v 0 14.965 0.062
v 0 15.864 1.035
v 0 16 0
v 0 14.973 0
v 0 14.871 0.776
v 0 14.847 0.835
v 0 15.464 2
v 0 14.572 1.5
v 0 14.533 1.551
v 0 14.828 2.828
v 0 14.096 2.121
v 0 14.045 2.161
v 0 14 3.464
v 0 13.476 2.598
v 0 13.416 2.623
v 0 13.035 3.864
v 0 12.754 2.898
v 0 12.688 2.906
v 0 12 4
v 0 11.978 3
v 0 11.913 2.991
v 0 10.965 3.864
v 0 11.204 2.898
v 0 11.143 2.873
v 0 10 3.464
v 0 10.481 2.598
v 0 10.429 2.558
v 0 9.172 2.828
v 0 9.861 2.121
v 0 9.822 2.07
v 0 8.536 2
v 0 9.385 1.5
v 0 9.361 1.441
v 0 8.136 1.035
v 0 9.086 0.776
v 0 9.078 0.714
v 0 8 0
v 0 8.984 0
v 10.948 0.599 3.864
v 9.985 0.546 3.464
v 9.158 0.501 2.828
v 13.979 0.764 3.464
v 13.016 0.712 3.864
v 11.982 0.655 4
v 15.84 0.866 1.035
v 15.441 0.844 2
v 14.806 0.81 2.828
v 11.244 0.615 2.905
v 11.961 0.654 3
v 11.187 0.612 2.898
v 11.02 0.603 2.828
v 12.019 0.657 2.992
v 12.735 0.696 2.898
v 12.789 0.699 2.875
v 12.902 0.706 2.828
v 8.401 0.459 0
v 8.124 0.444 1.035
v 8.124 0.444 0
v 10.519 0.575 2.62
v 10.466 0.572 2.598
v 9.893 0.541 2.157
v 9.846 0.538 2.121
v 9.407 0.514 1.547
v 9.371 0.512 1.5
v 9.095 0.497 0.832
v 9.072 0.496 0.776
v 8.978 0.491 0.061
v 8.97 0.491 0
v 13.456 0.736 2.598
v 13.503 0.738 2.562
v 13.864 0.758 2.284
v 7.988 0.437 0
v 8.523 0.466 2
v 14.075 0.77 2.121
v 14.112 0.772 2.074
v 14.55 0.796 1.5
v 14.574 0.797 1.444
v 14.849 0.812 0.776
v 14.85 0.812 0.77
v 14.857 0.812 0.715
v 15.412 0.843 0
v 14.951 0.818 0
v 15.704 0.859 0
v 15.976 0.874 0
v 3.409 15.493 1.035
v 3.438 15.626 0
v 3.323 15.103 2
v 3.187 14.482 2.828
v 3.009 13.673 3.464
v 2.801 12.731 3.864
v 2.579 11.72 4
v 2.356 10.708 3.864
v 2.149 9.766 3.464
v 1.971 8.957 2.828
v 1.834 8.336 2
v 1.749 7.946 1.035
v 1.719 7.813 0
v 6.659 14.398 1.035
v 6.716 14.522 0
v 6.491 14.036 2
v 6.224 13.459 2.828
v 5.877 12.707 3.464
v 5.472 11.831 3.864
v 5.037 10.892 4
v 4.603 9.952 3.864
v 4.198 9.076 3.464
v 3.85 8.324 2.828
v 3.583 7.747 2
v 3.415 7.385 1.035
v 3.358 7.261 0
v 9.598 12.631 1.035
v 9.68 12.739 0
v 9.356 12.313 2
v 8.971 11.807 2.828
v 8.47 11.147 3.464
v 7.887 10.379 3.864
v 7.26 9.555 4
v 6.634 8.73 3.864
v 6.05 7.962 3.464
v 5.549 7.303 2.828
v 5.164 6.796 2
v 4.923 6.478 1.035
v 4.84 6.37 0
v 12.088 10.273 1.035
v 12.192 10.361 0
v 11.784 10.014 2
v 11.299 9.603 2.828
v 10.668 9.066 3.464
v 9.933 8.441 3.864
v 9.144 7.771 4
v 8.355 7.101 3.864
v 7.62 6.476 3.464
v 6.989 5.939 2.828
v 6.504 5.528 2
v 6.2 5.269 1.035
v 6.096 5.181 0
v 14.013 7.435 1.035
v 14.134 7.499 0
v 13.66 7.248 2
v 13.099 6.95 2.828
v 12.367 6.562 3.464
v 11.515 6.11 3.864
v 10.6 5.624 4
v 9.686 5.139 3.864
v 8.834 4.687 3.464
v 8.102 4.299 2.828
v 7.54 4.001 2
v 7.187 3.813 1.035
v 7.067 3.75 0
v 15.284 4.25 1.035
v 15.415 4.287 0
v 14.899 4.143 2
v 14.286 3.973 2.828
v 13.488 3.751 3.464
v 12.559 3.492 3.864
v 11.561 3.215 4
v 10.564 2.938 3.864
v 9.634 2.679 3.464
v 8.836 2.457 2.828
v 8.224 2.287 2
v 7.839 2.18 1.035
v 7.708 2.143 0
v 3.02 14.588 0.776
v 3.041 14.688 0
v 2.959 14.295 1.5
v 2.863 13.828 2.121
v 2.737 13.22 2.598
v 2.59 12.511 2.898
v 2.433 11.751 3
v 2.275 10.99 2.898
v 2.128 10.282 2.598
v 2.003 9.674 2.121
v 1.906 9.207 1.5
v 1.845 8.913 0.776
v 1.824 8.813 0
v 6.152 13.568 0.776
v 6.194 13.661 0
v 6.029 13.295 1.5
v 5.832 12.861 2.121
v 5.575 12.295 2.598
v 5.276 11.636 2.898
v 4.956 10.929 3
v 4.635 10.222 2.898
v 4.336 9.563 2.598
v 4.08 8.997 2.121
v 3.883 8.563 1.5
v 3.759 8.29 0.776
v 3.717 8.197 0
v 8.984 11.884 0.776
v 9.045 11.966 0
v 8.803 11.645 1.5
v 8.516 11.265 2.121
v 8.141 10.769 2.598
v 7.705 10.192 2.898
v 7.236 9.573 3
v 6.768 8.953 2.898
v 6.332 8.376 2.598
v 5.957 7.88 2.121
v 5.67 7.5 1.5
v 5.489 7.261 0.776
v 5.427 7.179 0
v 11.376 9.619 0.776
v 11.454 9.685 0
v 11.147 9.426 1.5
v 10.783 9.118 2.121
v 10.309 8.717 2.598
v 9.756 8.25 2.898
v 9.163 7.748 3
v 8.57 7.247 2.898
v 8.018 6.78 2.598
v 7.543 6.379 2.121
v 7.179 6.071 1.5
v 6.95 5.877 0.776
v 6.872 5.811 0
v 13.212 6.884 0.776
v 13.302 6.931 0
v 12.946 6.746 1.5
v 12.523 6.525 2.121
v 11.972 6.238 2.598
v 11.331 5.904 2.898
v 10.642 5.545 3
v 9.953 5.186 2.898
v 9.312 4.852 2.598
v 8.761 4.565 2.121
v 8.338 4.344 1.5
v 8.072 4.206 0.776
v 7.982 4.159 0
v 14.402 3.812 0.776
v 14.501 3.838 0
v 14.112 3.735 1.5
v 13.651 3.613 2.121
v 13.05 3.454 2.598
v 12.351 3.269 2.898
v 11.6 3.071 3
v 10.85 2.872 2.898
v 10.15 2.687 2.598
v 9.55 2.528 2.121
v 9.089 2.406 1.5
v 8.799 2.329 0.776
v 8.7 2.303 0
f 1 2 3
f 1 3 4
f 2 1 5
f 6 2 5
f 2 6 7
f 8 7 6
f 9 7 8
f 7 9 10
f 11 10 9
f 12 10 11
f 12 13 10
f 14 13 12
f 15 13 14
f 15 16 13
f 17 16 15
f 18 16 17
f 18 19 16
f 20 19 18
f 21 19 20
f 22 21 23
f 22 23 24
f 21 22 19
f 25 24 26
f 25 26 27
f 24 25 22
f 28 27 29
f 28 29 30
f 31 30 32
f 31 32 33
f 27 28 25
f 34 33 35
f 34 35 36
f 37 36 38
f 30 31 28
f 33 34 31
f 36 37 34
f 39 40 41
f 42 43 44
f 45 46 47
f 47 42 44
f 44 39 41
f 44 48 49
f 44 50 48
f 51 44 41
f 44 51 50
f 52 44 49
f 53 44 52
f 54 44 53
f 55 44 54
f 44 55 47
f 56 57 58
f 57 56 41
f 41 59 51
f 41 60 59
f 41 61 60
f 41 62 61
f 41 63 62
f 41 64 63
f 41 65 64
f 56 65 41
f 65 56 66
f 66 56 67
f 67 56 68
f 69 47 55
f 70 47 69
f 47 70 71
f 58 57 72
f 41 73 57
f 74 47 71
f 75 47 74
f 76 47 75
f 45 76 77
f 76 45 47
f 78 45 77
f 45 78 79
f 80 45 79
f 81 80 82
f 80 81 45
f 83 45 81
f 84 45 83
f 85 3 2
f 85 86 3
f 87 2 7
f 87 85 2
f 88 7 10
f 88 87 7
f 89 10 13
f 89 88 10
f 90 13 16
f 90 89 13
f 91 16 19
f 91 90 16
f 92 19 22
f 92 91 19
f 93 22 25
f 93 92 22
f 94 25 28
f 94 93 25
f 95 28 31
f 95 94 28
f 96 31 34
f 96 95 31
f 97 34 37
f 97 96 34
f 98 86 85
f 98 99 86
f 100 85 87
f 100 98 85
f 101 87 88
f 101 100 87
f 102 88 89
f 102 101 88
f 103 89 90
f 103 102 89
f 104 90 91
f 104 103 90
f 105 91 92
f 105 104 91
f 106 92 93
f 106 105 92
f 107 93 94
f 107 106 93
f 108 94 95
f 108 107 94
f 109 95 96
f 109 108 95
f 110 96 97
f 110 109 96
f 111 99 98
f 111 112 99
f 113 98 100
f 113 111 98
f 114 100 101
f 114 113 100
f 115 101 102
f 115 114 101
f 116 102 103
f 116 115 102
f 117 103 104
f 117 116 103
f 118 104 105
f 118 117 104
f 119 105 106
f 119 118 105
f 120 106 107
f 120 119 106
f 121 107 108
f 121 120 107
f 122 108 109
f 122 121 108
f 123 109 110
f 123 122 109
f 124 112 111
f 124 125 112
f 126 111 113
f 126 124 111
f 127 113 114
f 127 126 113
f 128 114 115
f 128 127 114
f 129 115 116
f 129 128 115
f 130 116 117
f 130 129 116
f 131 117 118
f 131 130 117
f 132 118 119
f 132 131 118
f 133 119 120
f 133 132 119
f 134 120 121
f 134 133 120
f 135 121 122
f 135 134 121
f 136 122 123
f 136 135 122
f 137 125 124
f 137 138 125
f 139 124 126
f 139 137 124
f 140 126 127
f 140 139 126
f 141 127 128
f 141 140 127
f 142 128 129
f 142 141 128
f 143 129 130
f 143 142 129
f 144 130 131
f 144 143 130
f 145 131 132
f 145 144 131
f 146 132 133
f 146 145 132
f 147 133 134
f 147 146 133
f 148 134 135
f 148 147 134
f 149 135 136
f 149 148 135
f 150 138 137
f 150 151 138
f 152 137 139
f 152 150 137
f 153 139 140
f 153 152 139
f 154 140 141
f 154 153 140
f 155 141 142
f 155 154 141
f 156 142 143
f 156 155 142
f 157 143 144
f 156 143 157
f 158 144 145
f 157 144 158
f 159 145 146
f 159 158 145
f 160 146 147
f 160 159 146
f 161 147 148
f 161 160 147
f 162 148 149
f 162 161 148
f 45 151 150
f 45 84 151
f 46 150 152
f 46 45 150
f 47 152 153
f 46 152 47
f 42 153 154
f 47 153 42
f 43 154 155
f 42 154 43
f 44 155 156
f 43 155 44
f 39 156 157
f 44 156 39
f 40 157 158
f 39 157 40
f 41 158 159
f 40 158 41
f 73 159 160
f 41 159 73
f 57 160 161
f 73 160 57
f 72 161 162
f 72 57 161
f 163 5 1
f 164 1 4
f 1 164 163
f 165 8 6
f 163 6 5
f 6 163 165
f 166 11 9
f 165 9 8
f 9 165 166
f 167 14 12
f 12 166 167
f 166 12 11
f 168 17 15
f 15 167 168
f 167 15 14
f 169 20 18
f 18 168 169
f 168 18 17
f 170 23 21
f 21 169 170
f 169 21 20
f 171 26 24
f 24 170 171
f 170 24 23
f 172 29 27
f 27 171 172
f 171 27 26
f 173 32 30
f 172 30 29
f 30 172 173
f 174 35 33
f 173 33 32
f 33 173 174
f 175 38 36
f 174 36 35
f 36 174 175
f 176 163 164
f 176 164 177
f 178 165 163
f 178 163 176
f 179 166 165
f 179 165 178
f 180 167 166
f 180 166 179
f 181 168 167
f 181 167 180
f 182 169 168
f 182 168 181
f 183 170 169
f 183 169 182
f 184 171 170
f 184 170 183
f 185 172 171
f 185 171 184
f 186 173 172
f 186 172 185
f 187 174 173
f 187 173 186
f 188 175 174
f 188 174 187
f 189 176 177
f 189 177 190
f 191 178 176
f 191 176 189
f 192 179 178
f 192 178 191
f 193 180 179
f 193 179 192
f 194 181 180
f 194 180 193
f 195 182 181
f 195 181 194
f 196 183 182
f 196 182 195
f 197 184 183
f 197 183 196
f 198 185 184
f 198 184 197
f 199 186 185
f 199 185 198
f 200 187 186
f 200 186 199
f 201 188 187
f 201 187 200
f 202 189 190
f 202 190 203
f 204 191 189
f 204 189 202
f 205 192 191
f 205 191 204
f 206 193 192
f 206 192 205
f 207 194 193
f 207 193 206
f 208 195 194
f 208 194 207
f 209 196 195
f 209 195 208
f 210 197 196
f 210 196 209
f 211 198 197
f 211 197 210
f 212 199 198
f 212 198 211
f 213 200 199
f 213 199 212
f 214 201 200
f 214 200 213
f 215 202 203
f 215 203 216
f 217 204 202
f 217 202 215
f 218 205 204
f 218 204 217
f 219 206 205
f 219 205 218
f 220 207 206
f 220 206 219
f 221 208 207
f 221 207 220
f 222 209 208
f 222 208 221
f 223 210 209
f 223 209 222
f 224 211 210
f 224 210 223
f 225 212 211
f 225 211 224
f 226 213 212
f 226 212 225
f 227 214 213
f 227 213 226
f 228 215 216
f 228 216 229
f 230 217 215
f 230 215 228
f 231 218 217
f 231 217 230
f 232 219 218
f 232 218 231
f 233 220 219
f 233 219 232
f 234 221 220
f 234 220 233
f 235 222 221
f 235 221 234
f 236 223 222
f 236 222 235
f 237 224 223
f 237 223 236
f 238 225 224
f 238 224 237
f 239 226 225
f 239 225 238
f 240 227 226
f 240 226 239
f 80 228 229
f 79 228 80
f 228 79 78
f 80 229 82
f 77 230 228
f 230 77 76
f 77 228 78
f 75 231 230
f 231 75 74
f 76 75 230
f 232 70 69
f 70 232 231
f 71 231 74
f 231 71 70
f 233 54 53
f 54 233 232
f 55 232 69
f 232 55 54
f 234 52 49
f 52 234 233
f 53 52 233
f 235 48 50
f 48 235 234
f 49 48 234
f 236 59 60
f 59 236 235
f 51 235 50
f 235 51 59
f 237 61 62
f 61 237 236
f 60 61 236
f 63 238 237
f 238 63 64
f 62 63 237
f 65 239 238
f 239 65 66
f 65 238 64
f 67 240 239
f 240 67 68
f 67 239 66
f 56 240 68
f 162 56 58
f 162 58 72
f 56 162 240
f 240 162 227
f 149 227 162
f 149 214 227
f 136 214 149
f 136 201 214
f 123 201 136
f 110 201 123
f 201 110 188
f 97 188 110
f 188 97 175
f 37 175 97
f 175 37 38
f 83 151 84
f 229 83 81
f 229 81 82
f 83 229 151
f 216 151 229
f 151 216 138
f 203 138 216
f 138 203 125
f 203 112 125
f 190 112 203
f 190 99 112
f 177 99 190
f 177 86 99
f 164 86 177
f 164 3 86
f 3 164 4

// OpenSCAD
// file: ../build_environments.scad
// build_environments.scad: modules to build level sections
//

module pool(diameter=10.0, wall_height=2.0, step_width=3.0, connections=[])
{
    difference() {
        union() {
        difference() {
            cylinder(h=0.5,r1=diameter+step_width,r2=diameter+step_width,$fn=48);
            translate([0,0,-0.1])
                cylinder(h=0.7,r1=diameter,r2=diameter,$fn=48);
        }
        difference() {
            cylinder(h=wall_height,r1=diameter+step_width+1.0,r2=diameter+step_width+1.0,$fn=48);
            translate([0,0,-0.1])
                cylinder(h=wall_height+0.2,r1=diameter+step_width,r2=diameter+step_width,$fn=48);
        }
        }
    
        for (c = connections)
        {
            rotate([0,90,0]) {
                angle = atan2(c[1],c[0]);
                rotate([-angle,0,0]) {
                    cylinder(h=diameter+5.0,r1=c[2],r2=c[2],$fn=48);
                }
            }
        }
    }
}

module straight(length=10.0, width=2.0, dy1=0.0, dy2=0.0, dz=0.0)
{
    dims = [0, 0, 0, 0, 0, (dz/length)];
    matrix = [
        [ 1, dims[0], dims[1], 0 ],
        [ dims[2], 1, dims[4], 0 ],
        [ dims[5], dims[3], 1, 0 ],
        [ 0, 0, 0, 1 ]
    ];
    multmatrix(matrix)
    difference() {
        translate([dy1,0,0])
        union() {
            rotate([0,90,0]) {
                difference() {
                    cylinder(h=(length-dy1-dy2),r1=width+1.0,r2=width+1.0,$fn=24);
                    translate([0,0,-0.1])
                        cylinder(h=(length-dy1-dy2+0.2),r1=width,r2=width,$fn=24);
                }
                difference() {
                    cylinder(h=1.0,r1=width+2.0,r2=width+2.0,$fn=24);
                    translate([0,0,-0.1])
                        cylinder(h=1.2,r1=width,r2=width,$fn=24);
                }
                translate([0,0,(length-dy1-dy2)-1.0]) {
                    difference() {
                        cylinder(h=1.0,r1=width+2.0,r2=width+2.0,$fn=24);
                        translate([0,0,-0.1])
                            cylinder(h=1.2,r1=width,r2=width,$fn=24);
                    }
                }
            }
        }
        translate([0,0,-(2*width+4.0)/2])
            cube([3*length,3*length,2*width+4.0],center=true);
    }
}

module curve(p0=[0,0], center=[0,0], dir=1, angle=0.0, width=2.0)
{
    radius = sqrt((p0[0]-center[0])*(p0[0]-center[0]) + (p0[1]-center[1])*(p0[1]-center[1]));
    if (dir == 0) {
        difference() {
            rotate([0,0,-90])
            difference() {
                rotate_extrude(angle = angle, convexity = 10, $fn=32)
                    translate([radius, 0, 0])
                        circle(r = width+1.0,$fn=24);
                rotate([0,0,-1.0])
                    rotate_extrude(angle = angle+2.0, convexity = 10, $fn=32)
                        translate([radius, 0, 0])
                            circle(r = width,$fn=24);
            }
            translate([0,0,-(2*width+4.0)/2])
                cube([5*radius,5*radius,2*width+4.0],center=true);
        }
    }
    else {
        difference() {
            rotate([0,0,90])
            difference() {
                rotate_extrude(angle = -angle, convexity = 10, $fn=32)
                    translate([radius, 0, 0])
                        circle(r = width+1.0,$fn=24);
                rotate([0,0,1.0])
                    rotate_extrude(angle = -angle-2.0, convexity = 10, $fn=32)
                        translate([radius, 0, 0])
                            circle(r = width,$fn=24);
            }
            translate([0,0,-(2*width+4.0)/2])
                cube([5*radius,5*radius,2*width+4.0],center=true);
        }
    }

}

// test pool
//pool(diameter=12.0000, wall_height=3.0000, step_width=3.0000, connections=[[0.0000,-26.0000,2.0000], [23.6074,0.0000,2.0000]]);

// test straight, slope
//straight(length=26.0000, width=2.0000, dy1=11.8322, dy2=6.7082, dz=0.0000);
//straight(length=29.1549, width=12.0000, dy1=0.0000, dy2=0.0000, dz=-15.0000);

// test curve
//curve(p0=[23.6074, 0.0000], center=[23.6074, 5.0000], dir=0, angle=60.1011, width=2.0000);
//curve(p0=[33.6426, 12.4219], center=[37.9771, 9.9295], dir=1, angle=120.4627, width=2.0000);
// main file
use <../build_environments.scad>;
curve(p0=[62.6668, -25.2894], center=[53.7308, -33.2986], dir=1, angle=86.8698, width=3.0000);
